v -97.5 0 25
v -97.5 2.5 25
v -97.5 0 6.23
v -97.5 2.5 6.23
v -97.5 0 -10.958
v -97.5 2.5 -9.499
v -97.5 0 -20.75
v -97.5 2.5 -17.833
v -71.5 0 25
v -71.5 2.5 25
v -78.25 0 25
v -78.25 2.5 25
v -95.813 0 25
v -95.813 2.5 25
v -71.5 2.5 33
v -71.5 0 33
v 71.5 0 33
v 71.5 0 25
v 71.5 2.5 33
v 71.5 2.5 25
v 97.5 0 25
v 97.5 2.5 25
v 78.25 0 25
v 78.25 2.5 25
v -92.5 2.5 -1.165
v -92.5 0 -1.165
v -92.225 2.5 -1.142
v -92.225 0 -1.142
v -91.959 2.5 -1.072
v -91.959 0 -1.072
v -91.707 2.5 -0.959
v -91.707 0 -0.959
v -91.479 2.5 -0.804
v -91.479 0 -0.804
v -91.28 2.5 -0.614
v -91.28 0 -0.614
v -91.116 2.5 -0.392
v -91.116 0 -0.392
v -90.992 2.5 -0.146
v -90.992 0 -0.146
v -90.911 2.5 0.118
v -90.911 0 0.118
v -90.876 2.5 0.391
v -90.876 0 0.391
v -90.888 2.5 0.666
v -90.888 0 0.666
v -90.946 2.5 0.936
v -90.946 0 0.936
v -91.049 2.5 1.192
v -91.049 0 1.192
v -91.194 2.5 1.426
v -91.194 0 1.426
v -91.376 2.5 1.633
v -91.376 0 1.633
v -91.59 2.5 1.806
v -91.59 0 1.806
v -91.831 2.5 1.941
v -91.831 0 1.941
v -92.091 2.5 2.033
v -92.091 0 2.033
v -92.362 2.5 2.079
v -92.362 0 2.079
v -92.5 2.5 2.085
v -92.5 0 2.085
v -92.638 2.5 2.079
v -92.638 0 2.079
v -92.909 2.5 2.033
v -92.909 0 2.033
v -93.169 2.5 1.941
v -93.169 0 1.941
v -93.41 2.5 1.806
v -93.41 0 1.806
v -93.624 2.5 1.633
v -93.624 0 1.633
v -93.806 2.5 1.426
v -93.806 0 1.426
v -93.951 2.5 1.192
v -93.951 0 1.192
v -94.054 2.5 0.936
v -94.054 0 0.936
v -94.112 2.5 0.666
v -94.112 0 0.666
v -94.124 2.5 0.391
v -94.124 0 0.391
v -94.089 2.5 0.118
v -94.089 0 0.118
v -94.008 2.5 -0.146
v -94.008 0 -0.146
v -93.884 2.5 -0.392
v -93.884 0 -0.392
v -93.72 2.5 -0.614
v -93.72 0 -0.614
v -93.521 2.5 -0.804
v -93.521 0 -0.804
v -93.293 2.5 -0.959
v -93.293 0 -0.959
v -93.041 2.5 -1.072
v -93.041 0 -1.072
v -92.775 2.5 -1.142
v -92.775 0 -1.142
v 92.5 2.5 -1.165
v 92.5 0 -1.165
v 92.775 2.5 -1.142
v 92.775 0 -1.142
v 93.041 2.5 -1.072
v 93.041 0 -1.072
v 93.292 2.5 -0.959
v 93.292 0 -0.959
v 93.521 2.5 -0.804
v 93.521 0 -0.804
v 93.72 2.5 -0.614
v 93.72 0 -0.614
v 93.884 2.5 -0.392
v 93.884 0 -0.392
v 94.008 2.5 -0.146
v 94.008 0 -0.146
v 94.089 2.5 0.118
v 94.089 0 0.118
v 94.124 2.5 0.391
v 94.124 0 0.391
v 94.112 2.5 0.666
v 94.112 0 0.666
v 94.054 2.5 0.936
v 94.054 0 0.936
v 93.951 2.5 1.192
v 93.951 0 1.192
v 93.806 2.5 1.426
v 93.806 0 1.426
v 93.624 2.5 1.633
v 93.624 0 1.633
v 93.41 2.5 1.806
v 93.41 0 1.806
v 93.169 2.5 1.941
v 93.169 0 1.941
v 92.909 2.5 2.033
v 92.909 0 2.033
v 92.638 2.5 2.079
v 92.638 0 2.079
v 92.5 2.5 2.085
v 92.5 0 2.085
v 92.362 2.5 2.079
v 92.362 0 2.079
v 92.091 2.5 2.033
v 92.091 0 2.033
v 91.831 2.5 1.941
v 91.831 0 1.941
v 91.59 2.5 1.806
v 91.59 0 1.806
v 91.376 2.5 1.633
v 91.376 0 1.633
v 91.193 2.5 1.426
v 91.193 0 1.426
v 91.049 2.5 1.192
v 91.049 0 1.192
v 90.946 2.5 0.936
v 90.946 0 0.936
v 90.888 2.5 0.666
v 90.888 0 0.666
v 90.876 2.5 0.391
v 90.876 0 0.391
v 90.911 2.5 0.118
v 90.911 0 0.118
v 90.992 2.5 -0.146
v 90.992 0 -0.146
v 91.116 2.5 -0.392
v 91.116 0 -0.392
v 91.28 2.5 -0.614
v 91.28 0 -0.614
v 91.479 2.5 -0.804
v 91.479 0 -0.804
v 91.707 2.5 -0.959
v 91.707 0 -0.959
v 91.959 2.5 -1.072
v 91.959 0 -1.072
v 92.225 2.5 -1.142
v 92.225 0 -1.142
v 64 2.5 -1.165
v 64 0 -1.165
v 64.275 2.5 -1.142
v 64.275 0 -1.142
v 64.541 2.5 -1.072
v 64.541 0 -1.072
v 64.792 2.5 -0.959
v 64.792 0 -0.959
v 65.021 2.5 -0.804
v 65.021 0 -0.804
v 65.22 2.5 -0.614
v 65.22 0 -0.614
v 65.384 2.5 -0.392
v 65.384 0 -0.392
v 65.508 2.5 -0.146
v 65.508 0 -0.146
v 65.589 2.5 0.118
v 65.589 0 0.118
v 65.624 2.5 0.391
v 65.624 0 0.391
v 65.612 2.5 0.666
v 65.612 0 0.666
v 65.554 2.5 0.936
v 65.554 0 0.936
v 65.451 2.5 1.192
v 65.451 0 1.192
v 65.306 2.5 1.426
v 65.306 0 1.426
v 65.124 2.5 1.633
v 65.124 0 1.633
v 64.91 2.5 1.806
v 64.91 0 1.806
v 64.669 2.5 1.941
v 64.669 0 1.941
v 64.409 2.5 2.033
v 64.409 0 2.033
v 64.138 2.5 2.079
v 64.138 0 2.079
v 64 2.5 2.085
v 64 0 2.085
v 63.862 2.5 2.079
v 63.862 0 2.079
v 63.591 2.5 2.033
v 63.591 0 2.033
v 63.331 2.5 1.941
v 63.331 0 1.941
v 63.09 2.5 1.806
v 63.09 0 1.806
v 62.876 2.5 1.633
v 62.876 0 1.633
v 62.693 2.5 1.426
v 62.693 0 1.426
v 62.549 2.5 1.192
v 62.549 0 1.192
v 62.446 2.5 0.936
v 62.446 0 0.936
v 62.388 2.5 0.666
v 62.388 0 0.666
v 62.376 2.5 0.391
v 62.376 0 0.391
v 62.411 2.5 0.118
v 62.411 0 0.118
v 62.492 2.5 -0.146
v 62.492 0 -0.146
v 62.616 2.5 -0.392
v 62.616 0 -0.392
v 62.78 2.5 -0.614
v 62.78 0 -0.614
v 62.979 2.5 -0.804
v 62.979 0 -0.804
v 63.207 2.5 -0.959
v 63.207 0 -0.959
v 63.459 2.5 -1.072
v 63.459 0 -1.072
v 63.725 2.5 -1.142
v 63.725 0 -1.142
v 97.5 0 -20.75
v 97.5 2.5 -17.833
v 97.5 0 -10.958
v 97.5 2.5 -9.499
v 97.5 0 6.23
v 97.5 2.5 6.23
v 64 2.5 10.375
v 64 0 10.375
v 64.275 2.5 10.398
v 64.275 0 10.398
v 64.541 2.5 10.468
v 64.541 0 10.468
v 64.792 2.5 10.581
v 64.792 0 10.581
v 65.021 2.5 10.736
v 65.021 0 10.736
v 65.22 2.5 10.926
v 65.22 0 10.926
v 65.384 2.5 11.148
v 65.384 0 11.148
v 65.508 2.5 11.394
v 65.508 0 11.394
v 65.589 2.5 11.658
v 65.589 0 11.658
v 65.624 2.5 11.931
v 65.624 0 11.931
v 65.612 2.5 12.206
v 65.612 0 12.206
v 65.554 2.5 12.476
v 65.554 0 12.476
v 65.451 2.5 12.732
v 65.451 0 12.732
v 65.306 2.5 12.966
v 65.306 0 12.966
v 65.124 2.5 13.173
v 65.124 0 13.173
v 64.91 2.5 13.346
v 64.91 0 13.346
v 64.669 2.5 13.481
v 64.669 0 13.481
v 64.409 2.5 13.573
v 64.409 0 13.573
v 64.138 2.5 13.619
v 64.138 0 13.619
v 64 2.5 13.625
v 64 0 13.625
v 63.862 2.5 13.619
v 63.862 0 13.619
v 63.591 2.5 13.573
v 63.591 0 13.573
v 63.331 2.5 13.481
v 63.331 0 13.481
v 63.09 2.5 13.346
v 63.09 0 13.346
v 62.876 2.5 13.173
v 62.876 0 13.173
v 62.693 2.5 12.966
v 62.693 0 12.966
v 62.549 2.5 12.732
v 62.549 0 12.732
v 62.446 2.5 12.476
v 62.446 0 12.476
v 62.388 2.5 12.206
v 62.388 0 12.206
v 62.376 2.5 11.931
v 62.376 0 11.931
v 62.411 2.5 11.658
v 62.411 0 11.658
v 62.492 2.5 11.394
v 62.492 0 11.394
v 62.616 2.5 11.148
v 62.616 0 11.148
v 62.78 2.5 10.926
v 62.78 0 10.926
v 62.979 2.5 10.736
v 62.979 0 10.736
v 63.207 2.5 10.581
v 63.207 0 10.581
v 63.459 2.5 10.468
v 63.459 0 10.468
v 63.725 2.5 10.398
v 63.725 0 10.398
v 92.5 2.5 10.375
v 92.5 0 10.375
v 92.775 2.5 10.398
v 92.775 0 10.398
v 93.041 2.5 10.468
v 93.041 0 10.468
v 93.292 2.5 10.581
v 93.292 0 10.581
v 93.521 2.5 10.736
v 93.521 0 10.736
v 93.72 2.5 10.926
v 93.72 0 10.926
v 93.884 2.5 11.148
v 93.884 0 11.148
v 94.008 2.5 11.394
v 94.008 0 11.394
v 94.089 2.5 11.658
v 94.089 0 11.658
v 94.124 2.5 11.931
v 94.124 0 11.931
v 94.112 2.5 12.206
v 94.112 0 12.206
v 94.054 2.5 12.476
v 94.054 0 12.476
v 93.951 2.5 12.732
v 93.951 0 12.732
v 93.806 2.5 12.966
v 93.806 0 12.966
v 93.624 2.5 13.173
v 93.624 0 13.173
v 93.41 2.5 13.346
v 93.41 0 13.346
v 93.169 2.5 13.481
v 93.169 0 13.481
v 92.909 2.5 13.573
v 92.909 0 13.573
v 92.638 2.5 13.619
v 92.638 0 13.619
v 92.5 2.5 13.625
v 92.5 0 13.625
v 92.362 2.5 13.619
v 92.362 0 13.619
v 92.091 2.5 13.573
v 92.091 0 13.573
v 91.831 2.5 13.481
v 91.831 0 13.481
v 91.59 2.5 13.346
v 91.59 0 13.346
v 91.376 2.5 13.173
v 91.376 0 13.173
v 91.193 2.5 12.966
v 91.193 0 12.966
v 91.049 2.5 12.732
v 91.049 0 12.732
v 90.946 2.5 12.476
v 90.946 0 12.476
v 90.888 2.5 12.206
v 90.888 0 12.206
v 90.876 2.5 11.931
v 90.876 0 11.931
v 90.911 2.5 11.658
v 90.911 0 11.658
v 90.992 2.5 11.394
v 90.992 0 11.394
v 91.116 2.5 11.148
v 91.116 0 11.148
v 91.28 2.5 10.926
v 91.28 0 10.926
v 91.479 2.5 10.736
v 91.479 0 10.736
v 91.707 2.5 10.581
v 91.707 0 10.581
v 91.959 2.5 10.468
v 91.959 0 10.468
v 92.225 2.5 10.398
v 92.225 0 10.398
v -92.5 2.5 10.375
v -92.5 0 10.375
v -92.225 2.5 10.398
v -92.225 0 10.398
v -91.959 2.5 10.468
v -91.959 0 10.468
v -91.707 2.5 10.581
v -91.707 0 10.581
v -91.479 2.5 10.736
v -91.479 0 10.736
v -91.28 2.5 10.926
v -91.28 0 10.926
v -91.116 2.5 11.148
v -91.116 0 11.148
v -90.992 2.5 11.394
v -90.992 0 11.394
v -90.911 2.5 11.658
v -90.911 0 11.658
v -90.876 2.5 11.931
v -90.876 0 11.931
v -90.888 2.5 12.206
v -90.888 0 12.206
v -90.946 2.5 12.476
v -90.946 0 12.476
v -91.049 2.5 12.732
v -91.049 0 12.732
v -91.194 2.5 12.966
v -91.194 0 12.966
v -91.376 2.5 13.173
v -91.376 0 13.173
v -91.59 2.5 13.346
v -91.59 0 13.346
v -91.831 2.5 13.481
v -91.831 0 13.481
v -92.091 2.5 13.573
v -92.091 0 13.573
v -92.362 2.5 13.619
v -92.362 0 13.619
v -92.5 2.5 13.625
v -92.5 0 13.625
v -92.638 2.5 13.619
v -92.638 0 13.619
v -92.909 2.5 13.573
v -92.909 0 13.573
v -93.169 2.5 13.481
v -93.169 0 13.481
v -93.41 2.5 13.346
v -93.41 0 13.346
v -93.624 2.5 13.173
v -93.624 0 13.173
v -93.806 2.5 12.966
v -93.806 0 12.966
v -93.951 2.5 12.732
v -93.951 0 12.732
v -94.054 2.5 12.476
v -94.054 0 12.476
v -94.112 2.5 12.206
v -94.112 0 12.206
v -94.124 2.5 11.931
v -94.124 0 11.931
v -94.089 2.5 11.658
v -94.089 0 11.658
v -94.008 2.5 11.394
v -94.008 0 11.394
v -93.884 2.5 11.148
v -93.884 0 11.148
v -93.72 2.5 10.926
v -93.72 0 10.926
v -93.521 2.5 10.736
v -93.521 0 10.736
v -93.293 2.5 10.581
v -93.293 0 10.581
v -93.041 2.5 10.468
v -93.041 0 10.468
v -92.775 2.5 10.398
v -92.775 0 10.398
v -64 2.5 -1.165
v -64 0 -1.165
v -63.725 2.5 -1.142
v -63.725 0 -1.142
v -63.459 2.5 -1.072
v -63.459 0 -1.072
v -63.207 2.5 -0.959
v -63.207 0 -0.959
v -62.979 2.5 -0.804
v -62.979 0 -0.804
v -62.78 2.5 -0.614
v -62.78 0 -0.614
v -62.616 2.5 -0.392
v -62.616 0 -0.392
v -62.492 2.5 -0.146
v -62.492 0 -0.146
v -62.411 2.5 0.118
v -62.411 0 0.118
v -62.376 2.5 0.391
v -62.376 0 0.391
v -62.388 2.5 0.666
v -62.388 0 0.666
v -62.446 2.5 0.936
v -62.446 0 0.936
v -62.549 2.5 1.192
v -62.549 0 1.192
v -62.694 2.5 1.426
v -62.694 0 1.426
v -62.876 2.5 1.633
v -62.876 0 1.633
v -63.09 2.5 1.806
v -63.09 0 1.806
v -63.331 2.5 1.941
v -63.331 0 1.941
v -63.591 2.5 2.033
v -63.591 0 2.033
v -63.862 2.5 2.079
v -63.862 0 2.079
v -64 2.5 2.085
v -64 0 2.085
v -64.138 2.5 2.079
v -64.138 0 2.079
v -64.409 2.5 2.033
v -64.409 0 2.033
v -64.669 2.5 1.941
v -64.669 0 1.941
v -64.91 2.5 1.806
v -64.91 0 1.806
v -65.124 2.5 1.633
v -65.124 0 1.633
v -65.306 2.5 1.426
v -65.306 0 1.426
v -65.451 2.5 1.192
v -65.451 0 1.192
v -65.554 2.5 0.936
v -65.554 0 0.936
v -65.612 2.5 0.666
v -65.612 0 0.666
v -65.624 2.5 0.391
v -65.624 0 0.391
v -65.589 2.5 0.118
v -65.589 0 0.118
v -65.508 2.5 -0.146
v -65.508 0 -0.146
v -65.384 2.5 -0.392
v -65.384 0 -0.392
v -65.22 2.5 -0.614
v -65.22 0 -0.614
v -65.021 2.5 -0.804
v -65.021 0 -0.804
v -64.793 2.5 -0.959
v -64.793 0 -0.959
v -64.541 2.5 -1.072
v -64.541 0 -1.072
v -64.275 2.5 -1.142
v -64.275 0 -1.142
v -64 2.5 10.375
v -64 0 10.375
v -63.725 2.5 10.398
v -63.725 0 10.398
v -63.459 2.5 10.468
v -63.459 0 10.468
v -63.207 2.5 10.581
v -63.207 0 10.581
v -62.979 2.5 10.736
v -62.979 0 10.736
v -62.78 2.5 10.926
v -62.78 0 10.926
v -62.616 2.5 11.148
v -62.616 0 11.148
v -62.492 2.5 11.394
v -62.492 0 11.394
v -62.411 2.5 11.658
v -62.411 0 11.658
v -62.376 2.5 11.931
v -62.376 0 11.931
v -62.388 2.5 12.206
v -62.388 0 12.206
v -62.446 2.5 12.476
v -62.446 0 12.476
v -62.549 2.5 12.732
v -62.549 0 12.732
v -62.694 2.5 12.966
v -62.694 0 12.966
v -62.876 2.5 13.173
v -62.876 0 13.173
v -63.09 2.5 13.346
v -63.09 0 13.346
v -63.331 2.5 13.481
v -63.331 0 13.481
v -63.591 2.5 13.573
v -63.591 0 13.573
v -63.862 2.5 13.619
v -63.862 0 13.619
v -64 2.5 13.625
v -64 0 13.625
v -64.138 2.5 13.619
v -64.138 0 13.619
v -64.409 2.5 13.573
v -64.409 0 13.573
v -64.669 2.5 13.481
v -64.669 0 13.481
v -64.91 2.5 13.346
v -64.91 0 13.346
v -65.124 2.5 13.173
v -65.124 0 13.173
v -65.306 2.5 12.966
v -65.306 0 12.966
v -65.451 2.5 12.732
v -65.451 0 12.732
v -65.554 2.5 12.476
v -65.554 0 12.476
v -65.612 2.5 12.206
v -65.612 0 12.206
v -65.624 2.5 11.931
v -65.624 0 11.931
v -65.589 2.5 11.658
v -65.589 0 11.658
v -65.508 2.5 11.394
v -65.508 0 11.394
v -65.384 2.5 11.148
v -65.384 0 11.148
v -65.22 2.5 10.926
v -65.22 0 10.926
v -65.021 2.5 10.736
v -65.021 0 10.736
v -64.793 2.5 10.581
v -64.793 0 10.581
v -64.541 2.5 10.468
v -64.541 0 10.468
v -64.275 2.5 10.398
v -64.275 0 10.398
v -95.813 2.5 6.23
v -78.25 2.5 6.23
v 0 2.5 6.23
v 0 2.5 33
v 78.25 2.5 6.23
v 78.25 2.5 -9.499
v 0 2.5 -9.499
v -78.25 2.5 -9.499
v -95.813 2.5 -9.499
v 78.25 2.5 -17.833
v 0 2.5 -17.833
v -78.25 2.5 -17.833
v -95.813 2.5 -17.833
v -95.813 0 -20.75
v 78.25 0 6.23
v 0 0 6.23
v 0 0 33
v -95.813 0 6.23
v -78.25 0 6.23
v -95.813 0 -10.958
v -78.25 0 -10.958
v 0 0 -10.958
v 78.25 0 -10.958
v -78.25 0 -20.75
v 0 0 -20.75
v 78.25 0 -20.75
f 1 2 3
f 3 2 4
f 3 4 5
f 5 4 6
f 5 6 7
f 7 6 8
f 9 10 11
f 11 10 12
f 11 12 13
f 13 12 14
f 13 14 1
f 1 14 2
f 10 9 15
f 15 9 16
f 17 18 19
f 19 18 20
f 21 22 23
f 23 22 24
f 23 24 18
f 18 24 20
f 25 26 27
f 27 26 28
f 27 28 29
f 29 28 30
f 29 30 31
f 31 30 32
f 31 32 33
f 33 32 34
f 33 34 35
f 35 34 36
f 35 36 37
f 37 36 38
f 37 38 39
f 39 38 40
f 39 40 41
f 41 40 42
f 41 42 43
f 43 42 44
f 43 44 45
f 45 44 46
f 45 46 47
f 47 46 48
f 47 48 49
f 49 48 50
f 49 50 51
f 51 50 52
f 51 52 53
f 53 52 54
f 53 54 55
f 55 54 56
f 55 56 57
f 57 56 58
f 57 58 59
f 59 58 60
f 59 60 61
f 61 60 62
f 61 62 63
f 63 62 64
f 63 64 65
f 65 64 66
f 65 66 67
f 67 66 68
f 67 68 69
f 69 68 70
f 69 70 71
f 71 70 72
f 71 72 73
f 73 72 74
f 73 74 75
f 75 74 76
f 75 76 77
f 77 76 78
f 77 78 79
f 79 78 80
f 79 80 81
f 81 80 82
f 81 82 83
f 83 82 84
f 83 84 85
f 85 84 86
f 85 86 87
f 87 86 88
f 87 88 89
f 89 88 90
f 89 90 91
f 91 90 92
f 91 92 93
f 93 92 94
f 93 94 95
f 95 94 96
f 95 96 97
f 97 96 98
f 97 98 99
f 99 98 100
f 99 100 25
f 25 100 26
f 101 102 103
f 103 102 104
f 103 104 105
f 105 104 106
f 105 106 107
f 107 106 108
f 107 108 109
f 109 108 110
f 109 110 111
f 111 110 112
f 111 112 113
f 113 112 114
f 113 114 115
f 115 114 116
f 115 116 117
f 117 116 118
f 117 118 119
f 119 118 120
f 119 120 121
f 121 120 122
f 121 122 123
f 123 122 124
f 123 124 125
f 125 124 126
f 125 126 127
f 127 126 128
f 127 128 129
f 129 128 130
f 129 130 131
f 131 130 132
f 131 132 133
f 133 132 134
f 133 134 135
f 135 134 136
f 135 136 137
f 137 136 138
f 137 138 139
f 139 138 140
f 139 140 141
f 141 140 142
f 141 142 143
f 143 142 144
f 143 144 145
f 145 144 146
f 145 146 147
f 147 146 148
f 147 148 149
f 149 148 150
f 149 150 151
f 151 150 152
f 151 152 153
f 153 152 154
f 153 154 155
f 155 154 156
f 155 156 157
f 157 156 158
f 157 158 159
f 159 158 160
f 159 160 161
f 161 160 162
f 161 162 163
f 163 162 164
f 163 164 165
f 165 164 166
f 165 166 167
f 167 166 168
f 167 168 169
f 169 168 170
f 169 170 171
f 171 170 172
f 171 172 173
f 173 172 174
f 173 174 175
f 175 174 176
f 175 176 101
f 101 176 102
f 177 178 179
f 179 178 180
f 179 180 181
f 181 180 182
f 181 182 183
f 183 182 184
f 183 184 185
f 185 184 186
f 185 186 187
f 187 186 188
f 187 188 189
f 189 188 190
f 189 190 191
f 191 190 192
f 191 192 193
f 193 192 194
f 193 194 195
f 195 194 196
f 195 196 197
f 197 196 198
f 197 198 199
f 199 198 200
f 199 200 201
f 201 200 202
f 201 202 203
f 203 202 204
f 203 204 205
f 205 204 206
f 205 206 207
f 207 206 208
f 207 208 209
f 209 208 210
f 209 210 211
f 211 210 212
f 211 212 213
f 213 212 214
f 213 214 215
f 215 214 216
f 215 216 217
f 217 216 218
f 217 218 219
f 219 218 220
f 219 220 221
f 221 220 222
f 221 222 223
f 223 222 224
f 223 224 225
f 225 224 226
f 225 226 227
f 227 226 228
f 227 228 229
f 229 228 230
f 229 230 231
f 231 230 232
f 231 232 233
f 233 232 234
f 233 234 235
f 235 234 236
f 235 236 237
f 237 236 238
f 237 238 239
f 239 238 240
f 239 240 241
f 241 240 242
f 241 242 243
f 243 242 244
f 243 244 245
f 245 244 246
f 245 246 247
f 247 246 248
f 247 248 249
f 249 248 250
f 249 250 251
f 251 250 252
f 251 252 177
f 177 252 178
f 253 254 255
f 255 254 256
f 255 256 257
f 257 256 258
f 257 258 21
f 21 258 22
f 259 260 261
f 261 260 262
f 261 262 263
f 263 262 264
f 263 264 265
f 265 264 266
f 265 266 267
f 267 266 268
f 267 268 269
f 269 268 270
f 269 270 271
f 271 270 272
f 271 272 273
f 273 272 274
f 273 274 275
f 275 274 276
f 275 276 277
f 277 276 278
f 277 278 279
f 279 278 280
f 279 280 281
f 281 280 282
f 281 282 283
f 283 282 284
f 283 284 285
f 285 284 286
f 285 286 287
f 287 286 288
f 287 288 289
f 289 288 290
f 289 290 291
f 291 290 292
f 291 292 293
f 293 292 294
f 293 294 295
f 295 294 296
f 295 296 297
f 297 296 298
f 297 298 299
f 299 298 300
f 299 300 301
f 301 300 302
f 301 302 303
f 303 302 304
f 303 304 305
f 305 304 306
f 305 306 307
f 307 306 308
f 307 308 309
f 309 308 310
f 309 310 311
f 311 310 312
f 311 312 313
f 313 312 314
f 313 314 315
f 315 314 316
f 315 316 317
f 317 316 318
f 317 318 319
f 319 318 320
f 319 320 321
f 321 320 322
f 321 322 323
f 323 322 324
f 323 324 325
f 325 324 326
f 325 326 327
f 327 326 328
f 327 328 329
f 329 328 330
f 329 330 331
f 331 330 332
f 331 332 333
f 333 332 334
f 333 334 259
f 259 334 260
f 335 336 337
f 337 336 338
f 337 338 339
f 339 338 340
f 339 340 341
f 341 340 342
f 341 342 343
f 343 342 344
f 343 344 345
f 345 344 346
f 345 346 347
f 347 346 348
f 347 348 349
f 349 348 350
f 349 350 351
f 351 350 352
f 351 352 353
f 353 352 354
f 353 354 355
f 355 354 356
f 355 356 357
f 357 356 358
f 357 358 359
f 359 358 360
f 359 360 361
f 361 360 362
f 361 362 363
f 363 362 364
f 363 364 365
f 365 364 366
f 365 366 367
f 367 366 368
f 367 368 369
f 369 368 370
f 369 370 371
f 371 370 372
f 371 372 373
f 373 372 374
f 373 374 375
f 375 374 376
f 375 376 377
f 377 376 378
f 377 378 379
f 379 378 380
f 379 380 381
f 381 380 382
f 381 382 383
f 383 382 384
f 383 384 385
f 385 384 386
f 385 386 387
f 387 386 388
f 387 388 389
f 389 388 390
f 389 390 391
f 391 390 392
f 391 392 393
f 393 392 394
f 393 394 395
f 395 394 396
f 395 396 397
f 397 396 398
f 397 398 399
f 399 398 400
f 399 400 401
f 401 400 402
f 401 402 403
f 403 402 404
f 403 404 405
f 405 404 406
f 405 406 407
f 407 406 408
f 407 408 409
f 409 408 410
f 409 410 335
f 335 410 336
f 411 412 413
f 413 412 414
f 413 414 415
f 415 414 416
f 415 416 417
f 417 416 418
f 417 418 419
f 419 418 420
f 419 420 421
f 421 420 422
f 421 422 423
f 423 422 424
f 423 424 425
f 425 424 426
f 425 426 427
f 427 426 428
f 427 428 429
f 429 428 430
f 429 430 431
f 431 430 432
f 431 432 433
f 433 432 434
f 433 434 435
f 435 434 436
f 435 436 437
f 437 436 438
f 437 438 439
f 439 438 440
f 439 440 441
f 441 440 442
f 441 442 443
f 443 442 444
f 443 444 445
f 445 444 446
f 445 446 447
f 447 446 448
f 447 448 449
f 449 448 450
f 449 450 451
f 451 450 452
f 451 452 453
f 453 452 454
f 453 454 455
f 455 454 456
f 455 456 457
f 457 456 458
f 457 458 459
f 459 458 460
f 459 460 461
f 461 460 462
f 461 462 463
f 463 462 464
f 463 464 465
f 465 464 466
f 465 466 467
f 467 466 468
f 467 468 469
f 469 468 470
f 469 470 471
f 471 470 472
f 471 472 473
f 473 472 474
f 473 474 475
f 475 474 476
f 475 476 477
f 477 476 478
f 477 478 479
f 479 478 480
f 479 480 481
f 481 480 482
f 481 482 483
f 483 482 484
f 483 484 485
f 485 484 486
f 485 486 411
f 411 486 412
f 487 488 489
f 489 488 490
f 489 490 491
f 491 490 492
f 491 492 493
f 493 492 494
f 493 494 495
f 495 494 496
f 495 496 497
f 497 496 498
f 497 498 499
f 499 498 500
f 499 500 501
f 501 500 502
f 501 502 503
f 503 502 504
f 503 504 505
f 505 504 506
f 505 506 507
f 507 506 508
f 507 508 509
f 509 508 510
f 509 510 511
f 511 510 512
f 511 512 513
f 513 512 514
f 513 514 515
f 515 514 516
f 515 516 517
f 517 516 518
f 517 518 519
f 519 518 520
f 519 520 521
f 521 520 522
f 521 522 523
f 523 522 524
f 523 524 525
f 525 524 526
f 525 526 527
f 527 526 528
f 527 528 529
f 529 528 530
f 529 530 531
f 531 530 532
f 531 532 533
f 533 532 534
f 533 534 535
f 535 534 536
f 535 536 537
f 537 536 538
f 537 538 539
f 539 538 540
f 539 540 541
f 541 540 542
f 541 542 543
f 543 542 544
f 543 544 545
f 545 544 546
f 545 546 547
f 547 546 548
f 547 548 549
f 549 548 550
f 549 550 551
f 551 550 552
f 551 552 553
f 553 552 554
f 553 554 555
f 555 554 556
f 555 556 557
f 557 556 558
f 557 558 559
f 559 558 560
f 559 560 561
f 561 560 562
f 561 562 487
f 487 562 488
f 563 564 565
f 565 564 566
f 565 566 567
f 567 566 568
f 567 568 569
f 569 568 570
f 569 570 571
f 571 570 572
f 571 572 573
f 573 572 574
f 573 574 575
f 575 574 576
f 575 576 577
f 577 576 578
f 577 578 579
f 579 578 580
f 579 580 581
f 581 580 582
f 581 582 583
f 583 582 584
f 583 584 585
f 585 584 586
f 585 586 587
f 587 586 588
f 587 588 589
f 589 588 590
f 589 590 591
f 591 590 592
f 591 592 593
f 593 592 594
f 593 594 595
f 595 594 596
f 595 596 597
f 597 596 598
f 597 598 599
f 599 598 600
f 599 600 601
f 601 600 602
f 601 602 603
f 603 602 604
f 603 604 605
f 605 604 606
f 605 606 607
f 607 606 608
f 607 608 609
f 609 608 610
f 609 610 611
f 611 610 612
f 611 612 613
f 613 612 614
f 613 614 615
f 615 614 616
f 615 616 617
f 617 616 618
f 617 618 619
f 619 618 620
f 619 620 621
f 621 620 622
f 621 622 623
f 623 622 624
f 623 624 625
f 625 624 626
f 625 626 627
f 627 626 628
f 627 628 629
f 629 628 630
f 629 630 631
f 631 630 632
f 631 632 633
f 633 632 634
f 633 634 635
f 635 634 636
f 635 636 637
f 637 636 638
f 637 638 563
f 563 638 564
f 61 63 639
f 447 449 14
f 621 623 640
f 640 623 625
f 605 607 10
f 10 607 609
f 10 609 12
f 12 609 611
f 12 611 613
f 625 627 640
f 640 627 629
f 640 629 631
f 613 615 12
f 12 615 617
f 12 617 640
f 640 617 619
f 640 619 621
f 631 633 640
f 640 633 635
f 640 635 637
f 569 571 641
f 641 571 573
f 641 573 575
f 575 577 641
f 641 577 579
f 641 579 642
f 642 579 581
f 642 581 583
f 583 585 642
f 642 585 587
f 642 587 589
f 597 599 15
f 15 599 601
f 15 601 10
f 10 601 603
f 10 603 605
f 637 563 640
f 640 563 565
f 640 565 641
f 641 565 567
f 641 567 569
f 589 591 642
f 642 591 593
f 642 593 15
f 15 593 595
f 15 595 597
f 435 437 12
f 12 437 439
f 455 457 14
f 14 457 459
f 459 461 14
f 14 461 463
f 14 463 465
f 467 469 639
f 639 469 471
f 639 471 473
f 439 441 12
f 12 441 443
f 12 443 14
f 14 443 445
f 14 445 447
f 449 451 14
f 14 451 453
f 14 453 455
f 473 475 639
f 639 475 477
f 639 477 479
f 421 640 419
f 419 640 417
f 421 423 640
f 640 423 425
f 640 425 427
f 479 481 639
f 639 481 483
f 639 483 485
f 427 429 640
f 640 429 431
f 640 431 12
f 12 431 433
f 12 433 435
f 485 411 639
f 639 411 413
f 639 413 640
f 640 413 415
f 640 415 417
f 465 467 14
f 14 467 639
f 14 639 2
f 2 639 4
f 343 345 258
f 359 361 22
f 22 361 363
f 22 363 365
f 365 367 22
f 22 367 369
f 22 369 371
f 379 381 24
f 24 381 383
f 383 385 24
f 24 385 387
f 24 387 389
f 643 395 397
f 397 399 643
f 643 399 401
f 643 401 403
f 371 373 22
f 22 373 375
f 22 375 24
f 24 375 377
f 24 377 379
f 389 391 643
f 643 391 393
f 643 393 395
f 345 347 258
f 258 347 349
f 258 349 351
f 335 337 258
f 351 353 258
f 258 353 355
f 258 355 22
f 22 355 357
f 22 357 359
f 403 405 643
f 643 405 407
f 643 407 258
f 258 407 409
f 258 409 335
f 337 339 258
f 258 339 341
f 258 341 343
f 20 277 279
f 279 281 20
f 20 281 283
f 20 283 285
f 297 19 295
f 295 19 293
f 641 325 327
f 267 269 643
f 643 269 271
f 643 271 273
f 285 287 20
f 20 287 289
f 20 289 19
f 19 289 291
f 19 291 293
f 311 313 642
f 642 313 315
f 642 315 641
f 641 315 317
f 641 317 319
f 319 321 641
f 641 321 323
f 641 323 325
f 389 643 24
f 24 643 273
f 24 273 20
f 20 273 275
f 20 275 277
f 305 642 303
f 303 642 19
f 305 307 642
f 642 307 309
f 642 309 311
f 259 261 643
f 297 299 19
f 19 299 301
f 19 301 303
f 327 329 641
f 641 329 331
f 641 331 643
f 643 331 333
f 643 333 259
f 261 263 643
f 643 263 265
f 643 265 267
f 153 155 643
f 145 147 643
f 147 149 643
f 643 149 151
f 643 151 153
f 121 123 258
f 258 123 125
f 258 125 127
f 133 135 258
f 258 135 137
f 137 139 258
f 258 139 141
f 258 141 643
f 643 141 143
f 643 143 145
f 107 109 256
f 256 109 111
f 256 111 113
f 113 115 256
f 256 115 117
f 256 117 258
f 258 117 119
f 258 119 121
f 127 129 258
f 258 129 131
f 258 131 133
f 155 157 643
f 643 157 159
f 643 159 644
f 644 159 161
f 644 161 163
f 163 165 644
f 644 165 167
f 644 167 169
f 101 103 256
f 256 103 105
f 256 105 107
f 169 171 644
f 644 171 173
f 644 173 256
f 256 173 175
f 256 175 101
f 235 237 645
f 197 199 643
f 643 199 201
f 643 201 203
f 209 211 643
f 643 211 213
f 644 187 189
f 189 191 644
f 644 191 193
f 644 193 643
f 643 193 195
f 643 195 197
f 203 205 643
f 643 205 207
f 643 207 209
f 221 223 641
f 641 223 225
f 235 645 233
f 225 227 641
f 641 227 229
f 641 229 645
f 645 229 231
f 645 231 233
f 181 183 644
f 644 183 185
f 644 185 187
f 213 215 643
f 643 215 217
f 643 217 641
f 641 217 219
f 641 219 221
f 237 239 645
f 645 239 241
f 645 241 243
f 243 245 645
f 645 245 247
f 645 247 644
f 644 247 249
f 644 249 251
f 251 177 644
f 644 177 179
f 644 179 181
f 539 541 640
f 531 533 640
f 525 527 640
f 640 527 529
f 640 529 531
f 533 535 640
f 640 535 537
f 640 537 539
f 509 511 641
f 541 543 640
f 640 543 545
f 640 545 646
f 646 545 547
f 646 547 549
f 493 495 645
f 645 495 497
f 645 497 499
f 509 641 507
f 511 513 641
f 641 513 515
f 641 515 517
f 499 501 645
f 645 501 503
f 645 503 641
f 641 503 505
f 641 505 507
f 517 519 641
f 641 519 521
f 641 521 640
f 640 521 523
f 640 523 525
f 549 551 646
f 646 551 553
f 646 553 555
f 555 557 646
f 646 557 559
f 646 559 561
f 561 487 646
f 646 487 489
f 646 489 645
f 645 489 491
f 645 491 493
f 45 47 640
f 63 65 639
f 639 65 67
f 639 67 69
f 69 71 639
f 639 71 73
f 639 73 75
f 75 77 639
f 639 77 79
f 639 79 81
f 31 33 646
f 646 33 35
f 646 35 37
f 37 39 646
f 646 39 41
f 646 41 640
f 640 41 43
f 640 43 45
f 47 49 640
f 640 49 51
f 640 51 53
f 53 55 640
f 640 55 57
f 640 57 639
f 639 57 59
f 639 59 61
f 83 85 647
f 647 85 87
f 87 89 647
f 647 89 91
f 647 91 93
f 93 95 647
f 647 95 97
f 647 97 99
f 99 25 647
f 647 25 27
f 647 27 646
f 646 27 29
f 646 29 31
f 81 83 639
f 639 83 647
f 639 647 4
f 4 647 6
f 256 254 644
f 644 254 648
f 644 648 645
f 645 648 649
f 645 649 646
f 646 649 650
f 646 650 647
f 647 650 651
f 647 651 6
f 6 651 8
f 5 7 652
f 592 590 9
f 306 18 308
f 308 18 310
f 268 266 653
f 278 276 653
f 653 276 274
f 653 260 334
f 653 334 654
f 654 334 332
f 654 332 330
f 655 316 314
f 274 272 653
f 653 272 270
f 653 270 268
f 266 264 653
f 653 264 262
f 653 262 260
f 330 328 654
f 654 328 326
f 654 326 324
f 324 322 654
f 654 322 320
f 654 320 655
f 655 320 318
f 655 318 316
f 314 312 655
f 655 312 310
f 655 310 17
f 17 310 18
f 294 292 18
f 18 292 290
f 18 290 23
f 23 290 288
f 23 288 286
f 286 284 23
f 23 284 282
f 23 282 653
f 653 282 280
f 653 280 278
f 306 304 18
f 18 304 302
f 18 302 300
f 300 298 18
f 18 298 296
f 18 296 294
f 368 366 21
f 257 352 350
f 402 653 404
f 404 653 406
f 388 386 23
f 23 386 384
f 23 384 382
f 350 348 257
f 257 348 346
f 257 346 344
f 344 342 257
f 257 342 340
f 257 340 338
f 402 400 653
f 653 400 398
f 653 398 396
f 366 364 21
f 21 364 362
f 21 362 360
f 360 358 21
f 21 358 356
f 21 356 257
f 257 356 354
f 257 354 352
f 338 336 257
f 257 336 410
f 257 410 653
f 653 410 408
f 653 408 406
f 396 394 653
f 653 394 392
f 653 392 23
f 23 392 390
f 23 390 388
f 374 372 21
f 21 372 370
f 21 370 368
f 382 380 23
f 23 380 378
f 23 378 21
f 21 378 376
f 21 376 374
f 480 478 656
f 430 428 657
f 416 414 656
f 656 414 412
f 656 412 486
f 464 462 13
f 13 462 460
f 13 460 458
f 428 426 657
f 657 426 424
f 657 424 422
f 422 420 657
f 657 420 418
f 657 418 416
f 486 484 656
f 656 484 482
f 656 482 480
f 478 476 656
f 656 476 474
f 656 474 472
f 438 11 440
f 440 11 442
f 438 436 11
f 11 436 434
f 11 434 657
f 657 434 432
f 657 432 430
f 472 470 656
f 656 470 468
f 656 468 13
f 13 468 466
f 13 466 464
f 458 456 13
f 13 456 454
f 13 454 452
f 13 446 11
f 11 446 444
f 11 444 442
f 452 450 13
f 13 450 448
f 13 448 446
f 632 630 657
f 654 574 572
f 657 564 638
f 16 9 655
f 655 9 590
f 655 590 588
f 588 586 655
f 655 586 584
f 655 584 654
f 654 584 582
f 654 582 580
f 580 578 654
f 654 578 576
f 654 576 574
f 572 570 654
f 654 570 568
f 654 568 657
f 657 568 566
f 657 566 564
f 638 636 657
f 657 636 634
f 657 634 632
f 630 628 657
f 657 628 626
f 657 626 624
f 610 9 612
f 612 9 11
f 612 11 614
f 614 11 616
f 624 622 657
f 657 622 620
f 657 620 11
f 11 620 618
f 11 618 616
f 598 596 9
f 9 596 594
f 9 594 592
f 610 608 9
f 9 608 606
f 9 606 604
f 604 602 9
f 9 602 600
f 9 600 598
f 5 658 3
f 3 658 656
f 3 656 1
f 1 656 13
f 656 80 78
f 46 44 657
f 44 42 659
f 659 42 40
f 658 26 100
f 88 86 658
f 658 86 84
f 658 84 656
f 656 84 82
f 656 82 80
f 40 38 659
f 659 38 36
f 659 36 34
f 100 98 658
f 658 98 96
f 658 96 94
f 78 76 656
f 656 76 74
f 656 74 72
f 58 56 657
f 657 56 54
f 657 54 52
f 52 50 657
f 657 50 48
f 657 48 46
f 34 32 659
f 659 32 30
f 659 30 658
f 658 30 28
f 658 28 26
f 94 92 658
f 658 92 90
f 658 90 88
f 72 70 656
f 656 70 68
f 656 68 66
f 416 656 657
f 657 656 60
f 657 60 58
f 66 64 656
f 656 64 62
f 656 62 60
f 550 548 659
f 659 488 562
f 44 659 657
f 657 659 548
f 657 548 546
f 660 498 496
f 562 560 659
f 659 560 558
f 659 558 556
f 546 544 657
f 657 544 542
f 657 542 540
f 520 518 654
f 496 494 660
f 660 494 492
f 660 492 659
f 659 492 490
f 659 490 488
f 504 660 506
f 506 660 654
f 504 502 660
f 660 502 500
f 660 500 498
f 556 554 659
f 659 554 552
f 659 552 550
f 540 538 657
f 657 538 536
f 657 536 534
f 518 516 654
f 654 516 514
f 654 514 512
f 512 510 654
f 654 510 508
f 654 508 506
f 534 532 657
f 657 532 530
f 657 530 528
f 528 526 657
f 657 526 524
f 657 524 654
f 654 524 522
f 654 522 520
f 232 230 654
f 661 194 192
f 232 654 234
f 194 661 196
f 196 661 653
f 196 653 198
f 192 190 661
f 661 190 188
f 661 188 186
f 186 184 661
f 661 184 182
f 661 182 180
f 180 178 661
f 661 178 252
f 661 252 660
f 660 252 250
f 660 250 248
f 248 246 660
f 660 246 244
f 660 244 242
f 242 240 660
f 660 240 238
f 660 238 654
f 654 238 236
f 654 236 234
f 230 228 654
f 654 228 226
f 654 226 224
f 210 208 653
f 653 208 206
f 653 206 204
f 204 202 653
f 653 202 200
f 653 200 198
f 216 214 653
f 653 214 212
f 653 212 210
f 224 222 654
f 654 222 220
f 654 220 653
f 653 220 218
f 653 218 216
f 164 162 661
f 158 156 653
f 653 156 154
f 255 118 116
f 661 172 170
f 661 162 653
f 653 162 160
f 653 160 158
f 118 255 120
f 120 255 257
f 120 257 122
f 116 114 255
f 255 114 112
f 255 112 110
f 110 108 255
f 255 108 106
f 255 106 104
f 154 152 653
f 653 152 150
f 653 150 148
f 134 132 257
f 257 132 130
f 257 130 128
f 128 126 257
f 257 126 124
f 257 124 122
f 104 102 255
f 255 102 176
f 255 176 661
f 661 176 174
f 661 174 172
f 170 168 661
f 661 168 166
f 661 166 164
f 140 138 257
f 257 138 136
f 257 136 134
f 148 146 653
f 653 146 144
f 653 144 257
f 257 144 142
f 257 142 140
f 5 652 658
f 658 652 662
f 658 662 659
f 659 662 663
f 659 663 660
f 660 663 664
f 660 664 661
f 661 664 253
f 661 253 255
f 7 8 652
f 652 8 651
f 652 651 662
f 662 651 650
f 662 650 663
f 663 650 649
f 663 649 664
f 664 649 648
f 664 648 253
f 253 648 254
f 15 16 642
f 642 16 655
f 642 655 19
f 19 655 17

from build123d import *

# Parameters (mm, degrees)
CROQUIS1_R              = 1.625
CUERPO_INICIAL_DEPTH    = 2.5
SALIENTE_EXTRUIR2_DEPTH = 195
CROQUIS6_W              = 143
CROQUIS6_H              = 28
CORTAR_EXTRUIR1_DEPTH   = 10


with BuildPart() as part:
    # Croquis1 → Cuerpo Inicial (new body)
    with BuildSketch(Plane(origin=(0, 0, 0), x_dir=(1, 0, 0), z_dir=(0, 1, 0))):
        Polygon((-71.5, -25), (-71.5, -61), (71.5, -61), (71.5, -25), (97.5, -25), (97.5, 0), (97.5, 1), (97.5, 5.7), (45, 5.7), (-45, 5.7), (-97.5, 5.7), (-97.5, 1), (-97.5, 0), (-97.5, -25), align=None)
        with Locations((-92.5, -12)):
            Circle(CROQUIS1_R, mode=Mode.SUBTRACT)
        with Locations((-64, -12)):
            Circle(CROQUIS1_R, mode=Mode.SUBTRACT)
        with Locations((-92.5, -0.46)):
            Circle(CROQUIS1_R, mode=Mode.SUBTRACT)
        with Locations((-64, -0.46)):
            Circle(CROQUIS1_R, mode=Mode.SUBTRACT)
        with Locations((64, -12)):
            Circle(CROQUIS1_R, mode=Mode.SUBTRACT)
        with Locations((92.5, -12)):
            Circle(CROQUIS1_R, mode=Mode.SUBTRACT)
        with Locations((64, -0.46)):
            Circle(CROQUIS1_R, mode=Mode.SUBTRACT)
        with Locations((92.5, -0.46)):
            Circle(CROQUIS1_R, mode=Mode.SUBTRACT)
    extrude(amount=CUERPO_INICIAL_DEPTH)

    # Croquis3 → Saliente-Extruir2 (add)
    with BuildSketch(Plane(origin=(97.5, 0, 0), x_dir=(0, 0, -1), z_dir=(1, 0, 0))):
        Polygon((5.7, 2.5), (17.833199952, 2.5), (20.75, 0), (5.7, 0), align=None)
    extrude(amount=-SALIENTE_EXTRUIR2_DEPTH)

    # Croquis6 → Cortar-Extruir1 (cut)
    with BuildSketch(Plane(origin=(0, 2.5, 0), x_dir=(1, 0, 0), z_dir=(0, 1, 0))):
        with Locations((0, -47)):
            Rectangle(CROQUIS6_W, CROQUIS6_H)
    extrude(amount=-CORTAR_EXTRUIR1_DEPTH, mode=Mode.SUBTRACT)


solid = part.part
